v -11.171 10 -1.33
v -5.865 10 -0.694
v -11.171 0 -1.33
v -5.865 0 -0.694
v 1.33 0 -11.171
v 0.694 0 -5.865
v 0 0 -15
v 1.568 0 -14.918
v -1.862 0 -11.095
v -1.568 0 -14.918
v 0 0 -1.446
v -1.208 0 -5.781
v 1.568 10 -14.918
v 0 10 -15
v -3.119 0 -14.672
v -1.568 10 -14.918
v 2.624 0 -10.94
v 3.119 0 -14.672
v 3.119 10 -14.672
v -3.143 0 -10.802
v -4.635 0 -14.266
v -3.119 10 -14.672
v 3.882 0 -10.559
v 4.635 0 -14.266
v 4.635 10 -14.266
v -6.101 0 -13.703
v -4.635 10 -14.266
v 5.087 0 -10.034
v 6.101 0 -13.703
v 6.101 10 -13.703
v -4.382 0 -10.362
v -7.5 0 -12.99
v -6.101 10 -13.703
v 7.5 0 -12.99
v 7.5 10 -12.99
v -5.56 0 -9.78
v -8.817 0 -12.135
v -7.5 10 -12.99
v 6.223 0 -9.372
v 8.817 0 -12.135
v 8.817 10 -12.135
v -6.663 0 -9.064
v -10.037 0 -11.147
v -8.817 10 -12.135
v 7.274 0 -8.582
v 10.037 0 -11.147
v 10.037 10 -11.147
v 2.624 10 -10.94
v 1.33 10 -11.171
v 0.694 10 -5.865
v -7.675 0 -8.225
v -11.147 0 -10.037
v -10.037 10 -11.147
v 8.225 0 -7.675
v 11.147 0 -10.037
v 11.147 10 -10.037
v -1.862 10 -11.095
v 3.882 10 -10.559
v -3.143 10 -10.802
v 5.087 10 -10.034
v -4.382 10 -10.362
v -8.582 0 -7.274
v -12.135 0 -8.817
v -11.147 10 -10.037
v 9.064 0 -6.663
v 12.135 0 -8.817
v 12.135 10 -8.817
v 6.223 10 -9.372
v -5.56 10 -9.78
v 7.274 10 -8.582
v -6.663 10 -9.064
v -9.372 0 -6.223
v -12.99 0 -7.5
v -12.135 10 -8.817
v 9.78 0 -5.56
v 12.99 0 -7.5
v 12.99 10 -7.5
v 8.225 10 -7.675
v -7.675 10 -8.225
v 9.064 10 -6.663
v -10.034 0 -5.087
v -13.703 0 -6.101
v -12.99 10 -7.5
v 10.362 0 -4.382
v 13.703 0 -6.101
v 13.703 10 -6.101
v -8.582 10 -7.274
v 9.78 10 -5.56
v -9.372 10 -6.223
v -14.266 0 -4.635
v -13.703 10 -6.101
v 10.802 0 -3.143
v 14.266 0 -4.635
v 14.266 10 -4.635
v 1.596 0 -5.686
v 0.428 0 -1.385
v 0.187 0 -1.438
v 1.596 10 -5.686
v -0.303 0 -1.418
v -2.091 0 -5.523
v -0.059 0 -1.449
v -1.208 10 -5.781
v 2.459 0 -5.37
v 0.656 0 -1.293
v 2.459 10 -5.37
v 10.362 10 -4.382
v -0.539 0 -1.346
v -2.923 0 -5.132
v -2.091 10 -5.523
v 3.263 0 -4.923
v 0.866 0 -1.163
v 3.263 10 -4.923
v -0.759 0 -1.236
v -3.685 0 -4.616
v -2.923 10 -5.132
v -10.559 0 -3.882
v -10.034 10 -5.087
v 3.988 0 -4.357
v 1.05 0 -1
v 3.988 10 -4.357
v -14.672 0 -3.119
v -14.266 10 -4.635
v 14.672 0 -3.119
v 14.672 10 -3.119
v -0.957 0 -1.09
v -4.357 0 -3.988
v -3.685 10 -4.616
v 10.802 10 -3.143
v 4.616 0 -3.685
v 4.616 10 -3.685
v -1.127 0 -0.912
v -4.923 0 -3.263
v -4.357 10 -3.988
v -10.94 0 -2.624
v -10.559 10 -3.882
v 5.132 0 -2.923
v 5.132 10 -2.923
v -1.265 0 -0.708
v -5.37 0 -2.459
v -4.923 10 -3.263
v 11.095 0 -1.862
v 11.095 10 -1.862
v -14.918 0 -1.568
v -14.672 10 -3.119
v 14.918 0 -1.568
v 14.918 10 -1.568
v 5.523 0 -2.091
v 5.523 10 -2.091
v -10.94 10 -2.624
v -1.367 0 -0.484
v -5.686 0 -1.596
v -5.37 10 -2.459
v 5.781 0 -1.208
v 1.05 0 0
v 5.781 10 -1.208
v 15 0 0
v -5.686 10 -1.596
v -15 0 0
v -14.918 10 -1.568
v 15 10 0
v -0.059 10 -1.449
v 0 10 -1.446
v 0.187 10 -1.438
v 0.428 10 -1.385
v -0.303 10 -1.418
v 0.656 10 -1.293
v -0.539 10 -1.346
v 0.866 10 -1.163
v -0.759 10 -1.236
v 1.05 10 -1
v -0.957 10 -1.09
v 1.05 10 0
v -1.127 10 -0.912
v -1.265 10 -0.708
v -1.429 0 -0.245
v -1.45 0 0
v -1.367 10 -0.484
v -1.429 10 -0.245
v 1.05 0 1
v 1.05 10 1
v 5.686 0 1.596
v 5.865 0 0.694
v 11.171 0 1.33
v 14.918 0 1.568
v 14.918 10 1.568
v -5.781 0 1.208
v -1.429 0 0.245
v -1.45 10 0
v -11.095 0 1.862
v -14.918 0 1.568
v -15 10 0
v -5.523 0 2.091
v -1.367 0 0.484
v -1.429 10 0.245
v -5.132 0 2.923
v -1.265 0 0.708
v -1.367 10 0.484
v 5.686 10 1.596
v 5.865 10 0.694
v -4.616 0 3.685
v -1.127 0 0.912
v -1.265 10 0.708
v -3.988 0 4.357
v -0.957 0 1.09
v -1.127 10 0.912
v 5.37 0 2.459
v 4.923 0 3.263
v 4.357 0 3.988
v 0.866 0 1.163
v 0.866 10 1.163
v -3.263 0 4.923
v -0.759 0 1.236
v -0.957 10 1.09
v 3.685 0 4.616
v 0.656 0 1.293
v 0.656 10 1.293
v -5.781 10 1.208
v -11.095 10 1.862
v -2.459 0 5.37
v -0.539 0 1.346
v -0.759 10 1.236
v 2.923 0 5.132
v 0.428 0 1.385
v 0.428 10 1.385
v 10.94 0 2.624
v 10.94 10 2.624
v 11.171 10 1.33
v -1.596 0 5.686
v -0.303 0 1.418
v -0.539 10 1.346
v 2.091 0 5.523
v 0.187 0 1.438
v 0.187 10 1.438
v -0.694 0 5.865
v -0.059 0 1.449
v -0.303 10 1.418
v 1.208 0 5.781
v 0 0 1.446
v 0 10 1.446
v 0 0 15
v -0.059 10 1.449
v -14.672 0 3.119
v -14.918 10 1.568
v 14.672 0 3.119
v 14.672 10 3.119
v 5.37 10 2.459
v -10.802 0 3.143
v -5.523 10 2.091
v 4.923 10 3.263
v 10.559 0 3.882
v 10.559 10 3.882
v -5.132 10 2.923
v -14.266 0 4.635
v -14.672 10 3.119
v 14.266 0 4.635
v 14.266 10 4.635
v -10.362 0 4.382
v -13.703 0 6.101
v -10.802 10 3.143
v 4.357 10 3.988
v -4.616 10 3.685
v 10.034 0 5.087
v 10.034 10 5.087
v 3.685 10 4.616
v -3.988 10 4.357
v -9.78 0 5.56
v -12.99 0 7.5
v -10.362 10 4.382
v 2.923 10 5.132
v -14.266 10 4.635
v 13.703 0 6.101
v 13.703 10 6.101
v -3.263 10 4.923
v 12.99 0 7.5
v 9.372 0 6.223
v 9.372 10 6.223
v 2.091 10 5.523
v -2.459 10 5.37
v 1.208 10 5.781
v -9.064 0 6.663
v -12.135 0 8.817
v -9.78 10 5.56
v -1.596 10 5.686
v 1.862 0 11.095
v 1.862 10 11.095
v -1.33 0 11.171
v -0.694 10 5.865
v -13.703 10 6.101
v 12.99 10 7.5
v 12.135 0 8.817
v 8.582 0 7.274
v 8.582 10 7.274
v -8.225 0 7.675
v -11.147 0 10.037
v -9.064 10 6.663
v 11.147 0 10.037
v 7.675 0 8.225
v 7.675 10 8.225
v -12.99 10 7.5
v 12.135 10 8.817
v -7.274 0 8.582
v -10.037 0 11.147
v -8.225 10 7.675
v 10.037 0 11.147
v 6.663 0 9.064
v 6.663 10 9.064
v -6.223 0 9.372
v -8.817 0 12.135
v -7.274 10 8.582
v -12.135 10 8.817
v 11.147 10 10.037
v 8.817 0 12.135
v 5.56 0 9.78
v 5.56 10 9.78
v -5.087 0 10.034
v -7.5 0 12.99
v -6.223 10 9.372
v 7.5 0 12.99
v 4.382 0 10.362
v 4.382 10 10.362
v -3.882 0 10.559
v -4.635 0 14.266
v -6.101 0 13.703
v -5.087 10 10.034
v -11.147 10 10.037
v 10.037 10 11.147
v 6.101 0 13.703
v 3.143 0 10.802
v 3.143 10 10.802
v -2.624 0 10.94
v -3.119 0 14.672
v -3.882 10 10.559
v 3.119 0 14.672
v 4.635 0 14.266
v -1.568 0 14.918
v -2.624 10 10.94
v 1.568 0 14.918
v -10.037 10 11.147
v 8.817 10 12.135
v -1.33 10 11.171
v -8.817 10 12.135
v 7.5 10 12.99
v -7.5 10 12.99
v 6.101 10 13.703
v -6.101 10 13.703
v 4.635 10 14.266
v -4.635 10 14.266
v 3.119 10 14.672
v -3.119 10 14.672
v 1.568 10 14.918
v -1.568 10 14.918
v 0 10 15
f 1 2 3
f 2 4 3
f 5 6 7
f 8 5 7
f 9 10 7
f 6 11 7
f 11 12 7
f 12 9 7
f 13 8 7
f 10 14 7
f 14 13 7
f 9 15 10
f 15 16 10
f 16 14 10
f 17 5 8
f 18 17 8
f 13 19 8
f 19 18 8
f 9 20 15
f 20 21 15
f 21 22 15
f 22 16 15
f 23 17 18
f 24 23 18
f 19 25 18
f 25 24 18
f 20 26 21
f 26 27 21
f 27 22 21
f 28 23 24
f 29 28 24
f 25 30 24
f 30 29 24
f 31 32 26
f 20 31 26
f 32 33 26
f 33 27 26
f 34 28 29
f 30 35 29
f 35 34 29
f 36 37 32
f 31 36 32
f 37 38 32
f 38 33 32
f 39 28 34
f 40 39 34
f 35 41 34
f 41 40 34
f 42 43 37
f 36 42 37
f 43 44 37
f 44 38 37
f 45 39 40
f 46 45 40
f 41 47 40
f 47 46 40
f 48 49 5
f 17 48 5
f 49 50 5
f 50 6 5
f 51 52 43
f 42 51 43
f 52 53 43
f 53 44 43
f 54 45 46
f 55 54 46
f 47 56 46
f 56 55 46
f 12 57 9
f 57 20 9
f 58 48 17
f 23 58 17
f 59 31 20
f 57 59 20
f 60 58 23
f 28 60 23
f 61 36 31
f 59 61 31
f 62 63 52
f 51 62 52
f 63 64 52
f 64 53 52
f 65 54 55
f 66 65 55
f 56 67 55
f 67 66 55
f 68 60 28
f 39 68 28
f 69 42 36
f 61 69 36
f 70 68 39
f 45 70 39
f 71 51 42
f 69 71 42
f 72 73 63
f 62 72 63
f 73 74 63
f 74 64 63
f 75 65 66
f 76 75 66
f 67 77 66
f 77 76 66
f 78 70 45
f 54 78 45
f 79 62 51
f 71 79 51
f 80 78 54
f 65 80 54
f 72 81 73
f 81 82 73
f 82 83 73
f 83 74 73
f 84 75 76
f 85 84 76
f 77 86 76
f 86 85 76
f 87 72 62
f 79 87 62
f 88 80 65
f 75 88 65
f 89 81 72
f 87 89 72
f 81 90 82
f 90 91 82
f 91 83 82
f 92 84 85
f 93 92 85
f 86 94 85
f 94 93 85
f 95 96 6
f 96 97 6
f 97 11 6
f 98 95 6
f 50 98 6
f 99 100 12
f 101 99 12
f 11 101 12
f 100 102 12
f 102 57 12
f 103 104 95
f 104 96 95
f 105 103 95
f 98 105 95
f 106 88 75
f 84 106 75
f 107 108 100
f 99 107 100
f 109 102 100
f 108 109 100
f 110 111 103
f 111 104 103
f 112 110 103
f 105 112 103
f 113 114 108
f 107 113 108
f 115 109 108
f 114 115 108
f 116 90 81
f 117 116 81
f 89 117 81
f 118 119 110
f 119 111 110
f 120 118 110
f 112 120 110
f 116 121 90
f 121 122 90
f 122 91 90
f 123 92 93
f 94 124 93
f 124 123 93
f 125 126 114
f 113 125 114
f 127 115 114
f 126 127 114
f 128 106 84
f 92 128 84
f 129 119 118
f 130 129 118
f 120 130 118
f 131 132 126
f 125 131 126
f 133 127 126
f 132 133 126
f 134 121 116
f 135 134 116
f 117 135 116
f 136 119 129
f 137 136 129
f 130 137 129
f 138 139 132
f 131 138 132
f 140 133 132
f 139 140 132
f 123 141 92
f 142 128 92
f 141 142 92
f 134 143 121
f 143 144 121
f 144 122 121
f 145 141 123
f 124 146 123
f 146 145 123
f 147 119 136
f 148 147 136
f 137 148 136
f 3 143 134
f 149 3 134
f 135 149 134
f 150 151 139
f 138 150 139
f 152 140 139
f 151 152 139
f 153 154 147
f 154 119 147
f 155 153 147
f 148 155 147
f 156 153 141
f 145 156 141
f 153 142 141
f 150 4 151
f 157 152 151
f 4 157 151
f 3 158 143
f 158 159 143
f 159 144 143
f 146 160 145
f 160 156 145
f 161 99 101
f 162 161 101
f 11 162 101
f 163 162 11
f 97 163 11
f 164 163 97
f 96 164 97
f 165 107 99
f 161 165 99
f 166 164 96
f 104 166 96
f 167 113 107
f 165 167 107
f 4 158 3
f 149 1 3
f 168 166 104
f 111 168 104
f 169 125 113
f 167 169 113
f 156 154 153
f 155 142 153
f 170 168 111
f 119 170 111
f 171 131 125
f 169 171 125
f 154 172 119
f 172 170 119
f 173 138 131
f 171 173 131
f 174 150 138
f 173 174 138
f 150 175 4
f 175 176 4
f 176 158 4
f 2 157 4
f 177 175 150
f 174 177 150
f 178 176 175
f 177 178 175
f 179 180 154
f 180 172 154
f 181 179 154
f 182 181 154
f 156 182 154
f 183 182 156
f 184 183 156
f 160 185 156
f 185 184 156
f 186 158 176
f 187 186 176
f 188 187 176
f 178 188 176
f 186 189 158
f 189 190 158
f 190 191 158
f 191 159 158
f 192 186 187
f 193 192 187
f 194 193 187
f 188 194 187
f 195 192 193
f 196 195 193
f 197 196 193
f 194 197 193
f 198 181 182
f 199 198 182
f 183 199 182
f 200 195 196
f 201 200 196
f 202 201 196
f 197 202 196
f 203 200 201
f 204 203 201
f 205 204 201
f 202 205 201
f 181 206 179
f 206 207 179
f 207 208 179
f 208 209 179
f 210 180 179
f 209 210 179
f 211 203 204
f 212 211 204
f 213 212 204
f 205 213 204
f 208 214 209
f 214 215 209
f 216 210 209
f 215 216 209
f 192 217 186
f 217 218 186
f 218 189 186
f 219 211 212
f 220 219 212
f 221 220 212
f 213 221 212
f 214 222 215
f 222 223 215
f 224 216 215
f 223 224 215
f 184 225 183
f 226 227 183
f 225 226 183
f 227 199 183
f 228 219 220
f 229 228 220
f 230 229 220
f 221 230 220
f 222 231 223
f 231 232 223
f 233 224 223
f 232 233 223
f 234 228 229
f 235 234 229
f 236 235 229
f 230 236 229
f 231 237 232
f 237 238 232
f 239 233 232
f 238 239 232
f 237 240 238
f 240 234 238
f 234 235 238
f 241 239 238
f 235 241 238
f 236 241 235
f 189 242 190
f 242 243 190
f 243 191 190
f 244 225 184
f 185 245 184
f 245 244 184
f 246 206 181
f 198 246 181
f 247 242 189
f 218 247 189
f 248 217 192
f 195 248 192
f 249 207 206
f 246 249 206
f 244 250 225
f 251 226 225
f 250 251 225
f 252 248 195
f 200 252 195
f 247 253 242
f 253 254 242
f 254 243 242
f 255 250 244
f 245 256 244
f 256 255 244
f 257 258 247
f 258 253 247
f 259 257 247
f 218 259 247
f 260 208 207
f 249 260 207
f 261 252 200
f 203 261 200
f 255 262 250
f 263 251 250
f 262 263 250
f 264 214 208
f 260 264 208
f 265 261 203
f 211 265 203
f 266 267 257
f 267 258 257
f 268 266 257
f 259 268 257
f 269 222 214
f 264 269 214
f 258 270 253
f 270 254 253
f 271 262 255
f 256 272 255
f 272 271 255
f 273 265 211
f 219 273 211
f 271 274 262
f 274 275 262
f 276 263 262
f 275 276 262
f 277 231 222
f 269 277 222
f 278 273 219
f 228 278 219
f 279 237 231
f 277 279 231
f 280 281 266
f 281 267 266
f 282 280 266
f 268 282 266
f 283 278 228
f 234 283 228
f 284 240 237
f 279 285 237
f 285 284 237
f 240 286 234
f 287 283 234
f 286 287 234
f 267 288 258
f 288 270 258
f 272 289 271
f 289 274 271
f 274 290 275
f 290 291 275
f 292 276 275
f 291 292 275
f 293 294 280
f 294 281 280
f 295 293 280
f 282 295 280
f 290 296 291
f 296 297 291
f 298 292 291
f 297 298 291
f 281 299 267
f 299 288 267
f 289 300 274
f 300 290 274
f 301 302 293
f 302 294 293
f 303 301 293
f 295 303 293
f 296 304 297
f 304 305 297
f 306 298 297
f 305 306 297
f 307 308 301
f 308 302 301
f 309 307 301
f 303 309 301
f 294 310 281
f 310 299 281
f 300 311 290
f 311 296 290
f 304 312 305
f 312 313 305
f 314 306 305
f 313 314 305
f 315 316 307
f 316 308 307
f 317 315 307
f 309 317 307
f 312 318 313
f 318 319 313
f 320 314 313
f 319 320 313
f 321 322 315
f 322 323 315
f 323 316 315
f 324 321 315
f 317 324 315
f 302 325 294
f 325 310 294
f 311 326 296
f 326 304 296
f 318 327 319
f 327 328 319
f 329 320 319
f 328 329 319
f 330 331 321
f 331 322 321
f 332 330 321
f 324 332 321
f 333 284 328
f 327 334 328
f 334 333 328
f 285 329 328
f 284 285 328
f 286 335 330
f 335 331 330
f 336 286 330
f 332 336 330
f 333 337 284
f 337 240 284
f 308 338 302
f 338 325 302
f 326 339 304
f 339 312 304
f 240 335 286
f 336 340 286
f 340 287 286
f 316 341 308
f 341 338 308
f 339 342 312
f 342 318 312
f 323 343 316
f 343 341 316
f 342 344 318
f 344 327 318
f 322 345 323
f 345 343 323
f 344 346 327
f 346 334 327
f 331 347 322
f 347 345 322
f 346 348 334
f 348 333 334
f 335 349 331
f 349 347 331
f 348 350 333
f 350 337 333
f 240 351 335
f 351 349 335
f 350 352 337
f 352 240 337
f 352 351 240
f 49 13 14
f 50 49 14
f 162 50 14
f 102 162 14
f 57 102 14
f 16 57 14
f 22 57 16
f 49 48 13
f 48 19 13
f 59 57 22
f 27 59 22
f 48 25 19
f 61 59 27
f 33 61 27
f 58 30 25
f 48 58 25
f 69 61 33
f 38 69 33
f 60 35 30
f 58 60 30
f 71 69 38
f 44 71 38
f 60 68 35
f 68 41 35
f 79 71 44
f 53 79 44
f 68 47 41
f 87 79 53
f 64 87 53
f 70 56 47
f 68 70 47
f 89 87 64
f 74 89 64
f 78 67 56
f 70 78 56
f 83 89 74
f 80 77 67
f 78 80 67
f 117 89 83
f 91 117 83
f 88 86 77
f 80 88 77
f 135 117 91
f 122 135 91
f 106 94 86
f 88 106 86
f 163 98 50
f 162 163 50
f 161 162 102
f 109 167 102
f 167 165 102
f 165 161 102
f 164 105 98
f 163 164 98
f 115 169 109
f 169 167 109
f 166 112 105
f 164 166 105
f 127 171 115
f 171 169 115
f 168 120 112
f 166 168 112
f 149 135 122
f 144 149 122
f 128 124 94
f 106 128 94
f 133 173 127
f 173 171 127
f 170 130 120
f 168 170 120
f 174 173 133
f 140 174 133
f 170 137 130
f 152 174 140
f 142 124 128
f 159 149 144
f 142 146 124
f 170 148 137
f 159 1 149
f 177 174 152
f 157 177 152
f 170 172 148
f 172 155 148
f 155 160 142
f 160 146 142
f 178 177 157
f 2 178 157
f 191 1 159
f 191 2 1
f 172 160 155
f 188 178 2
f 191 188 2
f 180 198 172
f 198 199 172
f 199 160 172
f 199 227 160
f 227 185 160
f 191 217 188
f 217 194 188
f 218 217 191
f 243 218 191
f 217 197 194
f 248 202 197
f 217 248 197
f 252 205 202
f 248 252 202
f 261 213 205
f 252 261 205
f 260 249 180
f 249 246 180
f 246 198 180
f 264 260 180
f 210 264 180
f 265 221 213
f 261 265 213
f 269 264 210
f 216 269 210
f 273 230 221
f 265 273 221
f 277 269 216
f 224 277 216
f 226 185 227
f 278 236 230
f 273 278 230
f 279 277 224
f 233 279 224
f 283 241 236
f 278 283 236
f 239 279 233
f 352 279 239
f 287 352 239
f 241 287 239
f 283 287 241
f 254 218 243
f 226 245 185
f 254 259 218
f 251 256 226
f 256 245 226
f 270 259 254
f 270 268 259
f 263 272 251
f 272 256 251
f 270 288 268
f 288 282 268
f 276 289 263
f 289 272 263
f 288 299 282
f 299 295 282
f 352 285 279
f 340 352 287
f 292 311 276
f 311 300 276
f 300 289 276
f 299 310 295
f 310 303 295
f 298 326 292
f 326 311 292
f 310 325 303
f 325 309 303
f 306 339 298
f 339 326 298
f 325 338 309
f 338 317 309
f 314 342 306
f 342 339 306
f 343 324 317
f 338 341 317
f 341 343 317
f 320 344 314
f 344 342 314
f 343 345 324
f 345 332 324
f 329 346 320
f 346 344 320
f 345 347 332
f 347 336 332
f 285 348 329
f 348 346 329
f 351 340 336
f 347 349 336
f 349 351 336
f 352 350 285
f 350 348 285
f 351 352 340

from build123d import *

# Parameters (mm, degrees)
ESBO_O1_R                = 15
RESSALTO_EXTRUS_O1_DEPTH = 10


with BuildPart() as part:
    # Esboço1 → Ressalto-extrusão1 (new body)
    with BuildSketch(Plane(origin=(0, 0, 0), x_dir=(1, 0, 0), z_dir=(0, 1, 0))):
        with Locations(Location((0, 0, 0), (0, 0, 270))):
            Circle(ESBO_O1_R)
        with BuildLine():
            Line((1.05, -1), (1.05, 1))
            ThreePointArc((1.05, 1), (-1.45, 0), (1.05, -1))
        make_face(mode=Mode.SUBTRACT)
        with BuildLine():
            Line((1.20846299, -5.78116293), (1.861701017, -11.094889334))
            ThreePointArc((1.861701017, -11.094889334), (8.142596912, -7.762771124), (11.171107828, -1.329981166))
            Line((11.171107828, -1.329981166), (5.865248184, -0.693607497))
            ThreePointArc((5.865248184, -0.693607497), (4.356621686, -3.987740601), (1.20846299, -5.78116293))
        make_face(mode=Mode.SUBTRACT)
        with BuildLine():
            Line((-5.78116293, -1.20846299), (-11.094889334, -1.861701017))
            ThreePointArc((-11.094889334, -1.861701017), (-7.762771124, -8.142596912), (-1.329981166, -11.171107828))
            Line((-1.329981166, -11.171107828), (-0.693607497, -5.865248184))
            ThreePointArc((-0.693607497, -5.865248184), (-3.987740601, -4.356621686), (-5.78116293, -1.20846299))
        make_face(mode=Mode.SUBTRACT)
        with BuildLine():
            Line((-1.20846299, 5.78116293), (-1.861701017, 11.094889334))
            ThreePointArc((-1.861701017, 11.094889334), (-8.142596912, 7.762771124), (-11.171107828, 1.329981166))
            Line((-11.171107828, 1.329981166), (-5.865248184, 0.693607497))
            ThreePointArc((-5.865248184, 0.693607497), (-4.356621686, 3.987740601), (-1.20846299, 5.78116293))
        make_face(mode=Mode.SUBTRACT)
        with BuildLine():
            Line((5.78116293, 1.20846299), (11.094889334, 1.861701017))
            ThreePointArc((11.094889334, 1.861701017), (7.762771124, 8.142596912), (1.329981166, 11.171107828))
            Line((1.329981166, 11.171107828), (0.693607497, 5.865248184))
            ThreePointArc((0.693607497, 5.865248184), (3.987740601, 4.356621686), (5.78116293, 1.20846299))
        make_face(mode=Mode.SUBTRACT)
    extrude(amount=RESSALTO_EXTRUS_O1_DEPTH)


solid = part.part
